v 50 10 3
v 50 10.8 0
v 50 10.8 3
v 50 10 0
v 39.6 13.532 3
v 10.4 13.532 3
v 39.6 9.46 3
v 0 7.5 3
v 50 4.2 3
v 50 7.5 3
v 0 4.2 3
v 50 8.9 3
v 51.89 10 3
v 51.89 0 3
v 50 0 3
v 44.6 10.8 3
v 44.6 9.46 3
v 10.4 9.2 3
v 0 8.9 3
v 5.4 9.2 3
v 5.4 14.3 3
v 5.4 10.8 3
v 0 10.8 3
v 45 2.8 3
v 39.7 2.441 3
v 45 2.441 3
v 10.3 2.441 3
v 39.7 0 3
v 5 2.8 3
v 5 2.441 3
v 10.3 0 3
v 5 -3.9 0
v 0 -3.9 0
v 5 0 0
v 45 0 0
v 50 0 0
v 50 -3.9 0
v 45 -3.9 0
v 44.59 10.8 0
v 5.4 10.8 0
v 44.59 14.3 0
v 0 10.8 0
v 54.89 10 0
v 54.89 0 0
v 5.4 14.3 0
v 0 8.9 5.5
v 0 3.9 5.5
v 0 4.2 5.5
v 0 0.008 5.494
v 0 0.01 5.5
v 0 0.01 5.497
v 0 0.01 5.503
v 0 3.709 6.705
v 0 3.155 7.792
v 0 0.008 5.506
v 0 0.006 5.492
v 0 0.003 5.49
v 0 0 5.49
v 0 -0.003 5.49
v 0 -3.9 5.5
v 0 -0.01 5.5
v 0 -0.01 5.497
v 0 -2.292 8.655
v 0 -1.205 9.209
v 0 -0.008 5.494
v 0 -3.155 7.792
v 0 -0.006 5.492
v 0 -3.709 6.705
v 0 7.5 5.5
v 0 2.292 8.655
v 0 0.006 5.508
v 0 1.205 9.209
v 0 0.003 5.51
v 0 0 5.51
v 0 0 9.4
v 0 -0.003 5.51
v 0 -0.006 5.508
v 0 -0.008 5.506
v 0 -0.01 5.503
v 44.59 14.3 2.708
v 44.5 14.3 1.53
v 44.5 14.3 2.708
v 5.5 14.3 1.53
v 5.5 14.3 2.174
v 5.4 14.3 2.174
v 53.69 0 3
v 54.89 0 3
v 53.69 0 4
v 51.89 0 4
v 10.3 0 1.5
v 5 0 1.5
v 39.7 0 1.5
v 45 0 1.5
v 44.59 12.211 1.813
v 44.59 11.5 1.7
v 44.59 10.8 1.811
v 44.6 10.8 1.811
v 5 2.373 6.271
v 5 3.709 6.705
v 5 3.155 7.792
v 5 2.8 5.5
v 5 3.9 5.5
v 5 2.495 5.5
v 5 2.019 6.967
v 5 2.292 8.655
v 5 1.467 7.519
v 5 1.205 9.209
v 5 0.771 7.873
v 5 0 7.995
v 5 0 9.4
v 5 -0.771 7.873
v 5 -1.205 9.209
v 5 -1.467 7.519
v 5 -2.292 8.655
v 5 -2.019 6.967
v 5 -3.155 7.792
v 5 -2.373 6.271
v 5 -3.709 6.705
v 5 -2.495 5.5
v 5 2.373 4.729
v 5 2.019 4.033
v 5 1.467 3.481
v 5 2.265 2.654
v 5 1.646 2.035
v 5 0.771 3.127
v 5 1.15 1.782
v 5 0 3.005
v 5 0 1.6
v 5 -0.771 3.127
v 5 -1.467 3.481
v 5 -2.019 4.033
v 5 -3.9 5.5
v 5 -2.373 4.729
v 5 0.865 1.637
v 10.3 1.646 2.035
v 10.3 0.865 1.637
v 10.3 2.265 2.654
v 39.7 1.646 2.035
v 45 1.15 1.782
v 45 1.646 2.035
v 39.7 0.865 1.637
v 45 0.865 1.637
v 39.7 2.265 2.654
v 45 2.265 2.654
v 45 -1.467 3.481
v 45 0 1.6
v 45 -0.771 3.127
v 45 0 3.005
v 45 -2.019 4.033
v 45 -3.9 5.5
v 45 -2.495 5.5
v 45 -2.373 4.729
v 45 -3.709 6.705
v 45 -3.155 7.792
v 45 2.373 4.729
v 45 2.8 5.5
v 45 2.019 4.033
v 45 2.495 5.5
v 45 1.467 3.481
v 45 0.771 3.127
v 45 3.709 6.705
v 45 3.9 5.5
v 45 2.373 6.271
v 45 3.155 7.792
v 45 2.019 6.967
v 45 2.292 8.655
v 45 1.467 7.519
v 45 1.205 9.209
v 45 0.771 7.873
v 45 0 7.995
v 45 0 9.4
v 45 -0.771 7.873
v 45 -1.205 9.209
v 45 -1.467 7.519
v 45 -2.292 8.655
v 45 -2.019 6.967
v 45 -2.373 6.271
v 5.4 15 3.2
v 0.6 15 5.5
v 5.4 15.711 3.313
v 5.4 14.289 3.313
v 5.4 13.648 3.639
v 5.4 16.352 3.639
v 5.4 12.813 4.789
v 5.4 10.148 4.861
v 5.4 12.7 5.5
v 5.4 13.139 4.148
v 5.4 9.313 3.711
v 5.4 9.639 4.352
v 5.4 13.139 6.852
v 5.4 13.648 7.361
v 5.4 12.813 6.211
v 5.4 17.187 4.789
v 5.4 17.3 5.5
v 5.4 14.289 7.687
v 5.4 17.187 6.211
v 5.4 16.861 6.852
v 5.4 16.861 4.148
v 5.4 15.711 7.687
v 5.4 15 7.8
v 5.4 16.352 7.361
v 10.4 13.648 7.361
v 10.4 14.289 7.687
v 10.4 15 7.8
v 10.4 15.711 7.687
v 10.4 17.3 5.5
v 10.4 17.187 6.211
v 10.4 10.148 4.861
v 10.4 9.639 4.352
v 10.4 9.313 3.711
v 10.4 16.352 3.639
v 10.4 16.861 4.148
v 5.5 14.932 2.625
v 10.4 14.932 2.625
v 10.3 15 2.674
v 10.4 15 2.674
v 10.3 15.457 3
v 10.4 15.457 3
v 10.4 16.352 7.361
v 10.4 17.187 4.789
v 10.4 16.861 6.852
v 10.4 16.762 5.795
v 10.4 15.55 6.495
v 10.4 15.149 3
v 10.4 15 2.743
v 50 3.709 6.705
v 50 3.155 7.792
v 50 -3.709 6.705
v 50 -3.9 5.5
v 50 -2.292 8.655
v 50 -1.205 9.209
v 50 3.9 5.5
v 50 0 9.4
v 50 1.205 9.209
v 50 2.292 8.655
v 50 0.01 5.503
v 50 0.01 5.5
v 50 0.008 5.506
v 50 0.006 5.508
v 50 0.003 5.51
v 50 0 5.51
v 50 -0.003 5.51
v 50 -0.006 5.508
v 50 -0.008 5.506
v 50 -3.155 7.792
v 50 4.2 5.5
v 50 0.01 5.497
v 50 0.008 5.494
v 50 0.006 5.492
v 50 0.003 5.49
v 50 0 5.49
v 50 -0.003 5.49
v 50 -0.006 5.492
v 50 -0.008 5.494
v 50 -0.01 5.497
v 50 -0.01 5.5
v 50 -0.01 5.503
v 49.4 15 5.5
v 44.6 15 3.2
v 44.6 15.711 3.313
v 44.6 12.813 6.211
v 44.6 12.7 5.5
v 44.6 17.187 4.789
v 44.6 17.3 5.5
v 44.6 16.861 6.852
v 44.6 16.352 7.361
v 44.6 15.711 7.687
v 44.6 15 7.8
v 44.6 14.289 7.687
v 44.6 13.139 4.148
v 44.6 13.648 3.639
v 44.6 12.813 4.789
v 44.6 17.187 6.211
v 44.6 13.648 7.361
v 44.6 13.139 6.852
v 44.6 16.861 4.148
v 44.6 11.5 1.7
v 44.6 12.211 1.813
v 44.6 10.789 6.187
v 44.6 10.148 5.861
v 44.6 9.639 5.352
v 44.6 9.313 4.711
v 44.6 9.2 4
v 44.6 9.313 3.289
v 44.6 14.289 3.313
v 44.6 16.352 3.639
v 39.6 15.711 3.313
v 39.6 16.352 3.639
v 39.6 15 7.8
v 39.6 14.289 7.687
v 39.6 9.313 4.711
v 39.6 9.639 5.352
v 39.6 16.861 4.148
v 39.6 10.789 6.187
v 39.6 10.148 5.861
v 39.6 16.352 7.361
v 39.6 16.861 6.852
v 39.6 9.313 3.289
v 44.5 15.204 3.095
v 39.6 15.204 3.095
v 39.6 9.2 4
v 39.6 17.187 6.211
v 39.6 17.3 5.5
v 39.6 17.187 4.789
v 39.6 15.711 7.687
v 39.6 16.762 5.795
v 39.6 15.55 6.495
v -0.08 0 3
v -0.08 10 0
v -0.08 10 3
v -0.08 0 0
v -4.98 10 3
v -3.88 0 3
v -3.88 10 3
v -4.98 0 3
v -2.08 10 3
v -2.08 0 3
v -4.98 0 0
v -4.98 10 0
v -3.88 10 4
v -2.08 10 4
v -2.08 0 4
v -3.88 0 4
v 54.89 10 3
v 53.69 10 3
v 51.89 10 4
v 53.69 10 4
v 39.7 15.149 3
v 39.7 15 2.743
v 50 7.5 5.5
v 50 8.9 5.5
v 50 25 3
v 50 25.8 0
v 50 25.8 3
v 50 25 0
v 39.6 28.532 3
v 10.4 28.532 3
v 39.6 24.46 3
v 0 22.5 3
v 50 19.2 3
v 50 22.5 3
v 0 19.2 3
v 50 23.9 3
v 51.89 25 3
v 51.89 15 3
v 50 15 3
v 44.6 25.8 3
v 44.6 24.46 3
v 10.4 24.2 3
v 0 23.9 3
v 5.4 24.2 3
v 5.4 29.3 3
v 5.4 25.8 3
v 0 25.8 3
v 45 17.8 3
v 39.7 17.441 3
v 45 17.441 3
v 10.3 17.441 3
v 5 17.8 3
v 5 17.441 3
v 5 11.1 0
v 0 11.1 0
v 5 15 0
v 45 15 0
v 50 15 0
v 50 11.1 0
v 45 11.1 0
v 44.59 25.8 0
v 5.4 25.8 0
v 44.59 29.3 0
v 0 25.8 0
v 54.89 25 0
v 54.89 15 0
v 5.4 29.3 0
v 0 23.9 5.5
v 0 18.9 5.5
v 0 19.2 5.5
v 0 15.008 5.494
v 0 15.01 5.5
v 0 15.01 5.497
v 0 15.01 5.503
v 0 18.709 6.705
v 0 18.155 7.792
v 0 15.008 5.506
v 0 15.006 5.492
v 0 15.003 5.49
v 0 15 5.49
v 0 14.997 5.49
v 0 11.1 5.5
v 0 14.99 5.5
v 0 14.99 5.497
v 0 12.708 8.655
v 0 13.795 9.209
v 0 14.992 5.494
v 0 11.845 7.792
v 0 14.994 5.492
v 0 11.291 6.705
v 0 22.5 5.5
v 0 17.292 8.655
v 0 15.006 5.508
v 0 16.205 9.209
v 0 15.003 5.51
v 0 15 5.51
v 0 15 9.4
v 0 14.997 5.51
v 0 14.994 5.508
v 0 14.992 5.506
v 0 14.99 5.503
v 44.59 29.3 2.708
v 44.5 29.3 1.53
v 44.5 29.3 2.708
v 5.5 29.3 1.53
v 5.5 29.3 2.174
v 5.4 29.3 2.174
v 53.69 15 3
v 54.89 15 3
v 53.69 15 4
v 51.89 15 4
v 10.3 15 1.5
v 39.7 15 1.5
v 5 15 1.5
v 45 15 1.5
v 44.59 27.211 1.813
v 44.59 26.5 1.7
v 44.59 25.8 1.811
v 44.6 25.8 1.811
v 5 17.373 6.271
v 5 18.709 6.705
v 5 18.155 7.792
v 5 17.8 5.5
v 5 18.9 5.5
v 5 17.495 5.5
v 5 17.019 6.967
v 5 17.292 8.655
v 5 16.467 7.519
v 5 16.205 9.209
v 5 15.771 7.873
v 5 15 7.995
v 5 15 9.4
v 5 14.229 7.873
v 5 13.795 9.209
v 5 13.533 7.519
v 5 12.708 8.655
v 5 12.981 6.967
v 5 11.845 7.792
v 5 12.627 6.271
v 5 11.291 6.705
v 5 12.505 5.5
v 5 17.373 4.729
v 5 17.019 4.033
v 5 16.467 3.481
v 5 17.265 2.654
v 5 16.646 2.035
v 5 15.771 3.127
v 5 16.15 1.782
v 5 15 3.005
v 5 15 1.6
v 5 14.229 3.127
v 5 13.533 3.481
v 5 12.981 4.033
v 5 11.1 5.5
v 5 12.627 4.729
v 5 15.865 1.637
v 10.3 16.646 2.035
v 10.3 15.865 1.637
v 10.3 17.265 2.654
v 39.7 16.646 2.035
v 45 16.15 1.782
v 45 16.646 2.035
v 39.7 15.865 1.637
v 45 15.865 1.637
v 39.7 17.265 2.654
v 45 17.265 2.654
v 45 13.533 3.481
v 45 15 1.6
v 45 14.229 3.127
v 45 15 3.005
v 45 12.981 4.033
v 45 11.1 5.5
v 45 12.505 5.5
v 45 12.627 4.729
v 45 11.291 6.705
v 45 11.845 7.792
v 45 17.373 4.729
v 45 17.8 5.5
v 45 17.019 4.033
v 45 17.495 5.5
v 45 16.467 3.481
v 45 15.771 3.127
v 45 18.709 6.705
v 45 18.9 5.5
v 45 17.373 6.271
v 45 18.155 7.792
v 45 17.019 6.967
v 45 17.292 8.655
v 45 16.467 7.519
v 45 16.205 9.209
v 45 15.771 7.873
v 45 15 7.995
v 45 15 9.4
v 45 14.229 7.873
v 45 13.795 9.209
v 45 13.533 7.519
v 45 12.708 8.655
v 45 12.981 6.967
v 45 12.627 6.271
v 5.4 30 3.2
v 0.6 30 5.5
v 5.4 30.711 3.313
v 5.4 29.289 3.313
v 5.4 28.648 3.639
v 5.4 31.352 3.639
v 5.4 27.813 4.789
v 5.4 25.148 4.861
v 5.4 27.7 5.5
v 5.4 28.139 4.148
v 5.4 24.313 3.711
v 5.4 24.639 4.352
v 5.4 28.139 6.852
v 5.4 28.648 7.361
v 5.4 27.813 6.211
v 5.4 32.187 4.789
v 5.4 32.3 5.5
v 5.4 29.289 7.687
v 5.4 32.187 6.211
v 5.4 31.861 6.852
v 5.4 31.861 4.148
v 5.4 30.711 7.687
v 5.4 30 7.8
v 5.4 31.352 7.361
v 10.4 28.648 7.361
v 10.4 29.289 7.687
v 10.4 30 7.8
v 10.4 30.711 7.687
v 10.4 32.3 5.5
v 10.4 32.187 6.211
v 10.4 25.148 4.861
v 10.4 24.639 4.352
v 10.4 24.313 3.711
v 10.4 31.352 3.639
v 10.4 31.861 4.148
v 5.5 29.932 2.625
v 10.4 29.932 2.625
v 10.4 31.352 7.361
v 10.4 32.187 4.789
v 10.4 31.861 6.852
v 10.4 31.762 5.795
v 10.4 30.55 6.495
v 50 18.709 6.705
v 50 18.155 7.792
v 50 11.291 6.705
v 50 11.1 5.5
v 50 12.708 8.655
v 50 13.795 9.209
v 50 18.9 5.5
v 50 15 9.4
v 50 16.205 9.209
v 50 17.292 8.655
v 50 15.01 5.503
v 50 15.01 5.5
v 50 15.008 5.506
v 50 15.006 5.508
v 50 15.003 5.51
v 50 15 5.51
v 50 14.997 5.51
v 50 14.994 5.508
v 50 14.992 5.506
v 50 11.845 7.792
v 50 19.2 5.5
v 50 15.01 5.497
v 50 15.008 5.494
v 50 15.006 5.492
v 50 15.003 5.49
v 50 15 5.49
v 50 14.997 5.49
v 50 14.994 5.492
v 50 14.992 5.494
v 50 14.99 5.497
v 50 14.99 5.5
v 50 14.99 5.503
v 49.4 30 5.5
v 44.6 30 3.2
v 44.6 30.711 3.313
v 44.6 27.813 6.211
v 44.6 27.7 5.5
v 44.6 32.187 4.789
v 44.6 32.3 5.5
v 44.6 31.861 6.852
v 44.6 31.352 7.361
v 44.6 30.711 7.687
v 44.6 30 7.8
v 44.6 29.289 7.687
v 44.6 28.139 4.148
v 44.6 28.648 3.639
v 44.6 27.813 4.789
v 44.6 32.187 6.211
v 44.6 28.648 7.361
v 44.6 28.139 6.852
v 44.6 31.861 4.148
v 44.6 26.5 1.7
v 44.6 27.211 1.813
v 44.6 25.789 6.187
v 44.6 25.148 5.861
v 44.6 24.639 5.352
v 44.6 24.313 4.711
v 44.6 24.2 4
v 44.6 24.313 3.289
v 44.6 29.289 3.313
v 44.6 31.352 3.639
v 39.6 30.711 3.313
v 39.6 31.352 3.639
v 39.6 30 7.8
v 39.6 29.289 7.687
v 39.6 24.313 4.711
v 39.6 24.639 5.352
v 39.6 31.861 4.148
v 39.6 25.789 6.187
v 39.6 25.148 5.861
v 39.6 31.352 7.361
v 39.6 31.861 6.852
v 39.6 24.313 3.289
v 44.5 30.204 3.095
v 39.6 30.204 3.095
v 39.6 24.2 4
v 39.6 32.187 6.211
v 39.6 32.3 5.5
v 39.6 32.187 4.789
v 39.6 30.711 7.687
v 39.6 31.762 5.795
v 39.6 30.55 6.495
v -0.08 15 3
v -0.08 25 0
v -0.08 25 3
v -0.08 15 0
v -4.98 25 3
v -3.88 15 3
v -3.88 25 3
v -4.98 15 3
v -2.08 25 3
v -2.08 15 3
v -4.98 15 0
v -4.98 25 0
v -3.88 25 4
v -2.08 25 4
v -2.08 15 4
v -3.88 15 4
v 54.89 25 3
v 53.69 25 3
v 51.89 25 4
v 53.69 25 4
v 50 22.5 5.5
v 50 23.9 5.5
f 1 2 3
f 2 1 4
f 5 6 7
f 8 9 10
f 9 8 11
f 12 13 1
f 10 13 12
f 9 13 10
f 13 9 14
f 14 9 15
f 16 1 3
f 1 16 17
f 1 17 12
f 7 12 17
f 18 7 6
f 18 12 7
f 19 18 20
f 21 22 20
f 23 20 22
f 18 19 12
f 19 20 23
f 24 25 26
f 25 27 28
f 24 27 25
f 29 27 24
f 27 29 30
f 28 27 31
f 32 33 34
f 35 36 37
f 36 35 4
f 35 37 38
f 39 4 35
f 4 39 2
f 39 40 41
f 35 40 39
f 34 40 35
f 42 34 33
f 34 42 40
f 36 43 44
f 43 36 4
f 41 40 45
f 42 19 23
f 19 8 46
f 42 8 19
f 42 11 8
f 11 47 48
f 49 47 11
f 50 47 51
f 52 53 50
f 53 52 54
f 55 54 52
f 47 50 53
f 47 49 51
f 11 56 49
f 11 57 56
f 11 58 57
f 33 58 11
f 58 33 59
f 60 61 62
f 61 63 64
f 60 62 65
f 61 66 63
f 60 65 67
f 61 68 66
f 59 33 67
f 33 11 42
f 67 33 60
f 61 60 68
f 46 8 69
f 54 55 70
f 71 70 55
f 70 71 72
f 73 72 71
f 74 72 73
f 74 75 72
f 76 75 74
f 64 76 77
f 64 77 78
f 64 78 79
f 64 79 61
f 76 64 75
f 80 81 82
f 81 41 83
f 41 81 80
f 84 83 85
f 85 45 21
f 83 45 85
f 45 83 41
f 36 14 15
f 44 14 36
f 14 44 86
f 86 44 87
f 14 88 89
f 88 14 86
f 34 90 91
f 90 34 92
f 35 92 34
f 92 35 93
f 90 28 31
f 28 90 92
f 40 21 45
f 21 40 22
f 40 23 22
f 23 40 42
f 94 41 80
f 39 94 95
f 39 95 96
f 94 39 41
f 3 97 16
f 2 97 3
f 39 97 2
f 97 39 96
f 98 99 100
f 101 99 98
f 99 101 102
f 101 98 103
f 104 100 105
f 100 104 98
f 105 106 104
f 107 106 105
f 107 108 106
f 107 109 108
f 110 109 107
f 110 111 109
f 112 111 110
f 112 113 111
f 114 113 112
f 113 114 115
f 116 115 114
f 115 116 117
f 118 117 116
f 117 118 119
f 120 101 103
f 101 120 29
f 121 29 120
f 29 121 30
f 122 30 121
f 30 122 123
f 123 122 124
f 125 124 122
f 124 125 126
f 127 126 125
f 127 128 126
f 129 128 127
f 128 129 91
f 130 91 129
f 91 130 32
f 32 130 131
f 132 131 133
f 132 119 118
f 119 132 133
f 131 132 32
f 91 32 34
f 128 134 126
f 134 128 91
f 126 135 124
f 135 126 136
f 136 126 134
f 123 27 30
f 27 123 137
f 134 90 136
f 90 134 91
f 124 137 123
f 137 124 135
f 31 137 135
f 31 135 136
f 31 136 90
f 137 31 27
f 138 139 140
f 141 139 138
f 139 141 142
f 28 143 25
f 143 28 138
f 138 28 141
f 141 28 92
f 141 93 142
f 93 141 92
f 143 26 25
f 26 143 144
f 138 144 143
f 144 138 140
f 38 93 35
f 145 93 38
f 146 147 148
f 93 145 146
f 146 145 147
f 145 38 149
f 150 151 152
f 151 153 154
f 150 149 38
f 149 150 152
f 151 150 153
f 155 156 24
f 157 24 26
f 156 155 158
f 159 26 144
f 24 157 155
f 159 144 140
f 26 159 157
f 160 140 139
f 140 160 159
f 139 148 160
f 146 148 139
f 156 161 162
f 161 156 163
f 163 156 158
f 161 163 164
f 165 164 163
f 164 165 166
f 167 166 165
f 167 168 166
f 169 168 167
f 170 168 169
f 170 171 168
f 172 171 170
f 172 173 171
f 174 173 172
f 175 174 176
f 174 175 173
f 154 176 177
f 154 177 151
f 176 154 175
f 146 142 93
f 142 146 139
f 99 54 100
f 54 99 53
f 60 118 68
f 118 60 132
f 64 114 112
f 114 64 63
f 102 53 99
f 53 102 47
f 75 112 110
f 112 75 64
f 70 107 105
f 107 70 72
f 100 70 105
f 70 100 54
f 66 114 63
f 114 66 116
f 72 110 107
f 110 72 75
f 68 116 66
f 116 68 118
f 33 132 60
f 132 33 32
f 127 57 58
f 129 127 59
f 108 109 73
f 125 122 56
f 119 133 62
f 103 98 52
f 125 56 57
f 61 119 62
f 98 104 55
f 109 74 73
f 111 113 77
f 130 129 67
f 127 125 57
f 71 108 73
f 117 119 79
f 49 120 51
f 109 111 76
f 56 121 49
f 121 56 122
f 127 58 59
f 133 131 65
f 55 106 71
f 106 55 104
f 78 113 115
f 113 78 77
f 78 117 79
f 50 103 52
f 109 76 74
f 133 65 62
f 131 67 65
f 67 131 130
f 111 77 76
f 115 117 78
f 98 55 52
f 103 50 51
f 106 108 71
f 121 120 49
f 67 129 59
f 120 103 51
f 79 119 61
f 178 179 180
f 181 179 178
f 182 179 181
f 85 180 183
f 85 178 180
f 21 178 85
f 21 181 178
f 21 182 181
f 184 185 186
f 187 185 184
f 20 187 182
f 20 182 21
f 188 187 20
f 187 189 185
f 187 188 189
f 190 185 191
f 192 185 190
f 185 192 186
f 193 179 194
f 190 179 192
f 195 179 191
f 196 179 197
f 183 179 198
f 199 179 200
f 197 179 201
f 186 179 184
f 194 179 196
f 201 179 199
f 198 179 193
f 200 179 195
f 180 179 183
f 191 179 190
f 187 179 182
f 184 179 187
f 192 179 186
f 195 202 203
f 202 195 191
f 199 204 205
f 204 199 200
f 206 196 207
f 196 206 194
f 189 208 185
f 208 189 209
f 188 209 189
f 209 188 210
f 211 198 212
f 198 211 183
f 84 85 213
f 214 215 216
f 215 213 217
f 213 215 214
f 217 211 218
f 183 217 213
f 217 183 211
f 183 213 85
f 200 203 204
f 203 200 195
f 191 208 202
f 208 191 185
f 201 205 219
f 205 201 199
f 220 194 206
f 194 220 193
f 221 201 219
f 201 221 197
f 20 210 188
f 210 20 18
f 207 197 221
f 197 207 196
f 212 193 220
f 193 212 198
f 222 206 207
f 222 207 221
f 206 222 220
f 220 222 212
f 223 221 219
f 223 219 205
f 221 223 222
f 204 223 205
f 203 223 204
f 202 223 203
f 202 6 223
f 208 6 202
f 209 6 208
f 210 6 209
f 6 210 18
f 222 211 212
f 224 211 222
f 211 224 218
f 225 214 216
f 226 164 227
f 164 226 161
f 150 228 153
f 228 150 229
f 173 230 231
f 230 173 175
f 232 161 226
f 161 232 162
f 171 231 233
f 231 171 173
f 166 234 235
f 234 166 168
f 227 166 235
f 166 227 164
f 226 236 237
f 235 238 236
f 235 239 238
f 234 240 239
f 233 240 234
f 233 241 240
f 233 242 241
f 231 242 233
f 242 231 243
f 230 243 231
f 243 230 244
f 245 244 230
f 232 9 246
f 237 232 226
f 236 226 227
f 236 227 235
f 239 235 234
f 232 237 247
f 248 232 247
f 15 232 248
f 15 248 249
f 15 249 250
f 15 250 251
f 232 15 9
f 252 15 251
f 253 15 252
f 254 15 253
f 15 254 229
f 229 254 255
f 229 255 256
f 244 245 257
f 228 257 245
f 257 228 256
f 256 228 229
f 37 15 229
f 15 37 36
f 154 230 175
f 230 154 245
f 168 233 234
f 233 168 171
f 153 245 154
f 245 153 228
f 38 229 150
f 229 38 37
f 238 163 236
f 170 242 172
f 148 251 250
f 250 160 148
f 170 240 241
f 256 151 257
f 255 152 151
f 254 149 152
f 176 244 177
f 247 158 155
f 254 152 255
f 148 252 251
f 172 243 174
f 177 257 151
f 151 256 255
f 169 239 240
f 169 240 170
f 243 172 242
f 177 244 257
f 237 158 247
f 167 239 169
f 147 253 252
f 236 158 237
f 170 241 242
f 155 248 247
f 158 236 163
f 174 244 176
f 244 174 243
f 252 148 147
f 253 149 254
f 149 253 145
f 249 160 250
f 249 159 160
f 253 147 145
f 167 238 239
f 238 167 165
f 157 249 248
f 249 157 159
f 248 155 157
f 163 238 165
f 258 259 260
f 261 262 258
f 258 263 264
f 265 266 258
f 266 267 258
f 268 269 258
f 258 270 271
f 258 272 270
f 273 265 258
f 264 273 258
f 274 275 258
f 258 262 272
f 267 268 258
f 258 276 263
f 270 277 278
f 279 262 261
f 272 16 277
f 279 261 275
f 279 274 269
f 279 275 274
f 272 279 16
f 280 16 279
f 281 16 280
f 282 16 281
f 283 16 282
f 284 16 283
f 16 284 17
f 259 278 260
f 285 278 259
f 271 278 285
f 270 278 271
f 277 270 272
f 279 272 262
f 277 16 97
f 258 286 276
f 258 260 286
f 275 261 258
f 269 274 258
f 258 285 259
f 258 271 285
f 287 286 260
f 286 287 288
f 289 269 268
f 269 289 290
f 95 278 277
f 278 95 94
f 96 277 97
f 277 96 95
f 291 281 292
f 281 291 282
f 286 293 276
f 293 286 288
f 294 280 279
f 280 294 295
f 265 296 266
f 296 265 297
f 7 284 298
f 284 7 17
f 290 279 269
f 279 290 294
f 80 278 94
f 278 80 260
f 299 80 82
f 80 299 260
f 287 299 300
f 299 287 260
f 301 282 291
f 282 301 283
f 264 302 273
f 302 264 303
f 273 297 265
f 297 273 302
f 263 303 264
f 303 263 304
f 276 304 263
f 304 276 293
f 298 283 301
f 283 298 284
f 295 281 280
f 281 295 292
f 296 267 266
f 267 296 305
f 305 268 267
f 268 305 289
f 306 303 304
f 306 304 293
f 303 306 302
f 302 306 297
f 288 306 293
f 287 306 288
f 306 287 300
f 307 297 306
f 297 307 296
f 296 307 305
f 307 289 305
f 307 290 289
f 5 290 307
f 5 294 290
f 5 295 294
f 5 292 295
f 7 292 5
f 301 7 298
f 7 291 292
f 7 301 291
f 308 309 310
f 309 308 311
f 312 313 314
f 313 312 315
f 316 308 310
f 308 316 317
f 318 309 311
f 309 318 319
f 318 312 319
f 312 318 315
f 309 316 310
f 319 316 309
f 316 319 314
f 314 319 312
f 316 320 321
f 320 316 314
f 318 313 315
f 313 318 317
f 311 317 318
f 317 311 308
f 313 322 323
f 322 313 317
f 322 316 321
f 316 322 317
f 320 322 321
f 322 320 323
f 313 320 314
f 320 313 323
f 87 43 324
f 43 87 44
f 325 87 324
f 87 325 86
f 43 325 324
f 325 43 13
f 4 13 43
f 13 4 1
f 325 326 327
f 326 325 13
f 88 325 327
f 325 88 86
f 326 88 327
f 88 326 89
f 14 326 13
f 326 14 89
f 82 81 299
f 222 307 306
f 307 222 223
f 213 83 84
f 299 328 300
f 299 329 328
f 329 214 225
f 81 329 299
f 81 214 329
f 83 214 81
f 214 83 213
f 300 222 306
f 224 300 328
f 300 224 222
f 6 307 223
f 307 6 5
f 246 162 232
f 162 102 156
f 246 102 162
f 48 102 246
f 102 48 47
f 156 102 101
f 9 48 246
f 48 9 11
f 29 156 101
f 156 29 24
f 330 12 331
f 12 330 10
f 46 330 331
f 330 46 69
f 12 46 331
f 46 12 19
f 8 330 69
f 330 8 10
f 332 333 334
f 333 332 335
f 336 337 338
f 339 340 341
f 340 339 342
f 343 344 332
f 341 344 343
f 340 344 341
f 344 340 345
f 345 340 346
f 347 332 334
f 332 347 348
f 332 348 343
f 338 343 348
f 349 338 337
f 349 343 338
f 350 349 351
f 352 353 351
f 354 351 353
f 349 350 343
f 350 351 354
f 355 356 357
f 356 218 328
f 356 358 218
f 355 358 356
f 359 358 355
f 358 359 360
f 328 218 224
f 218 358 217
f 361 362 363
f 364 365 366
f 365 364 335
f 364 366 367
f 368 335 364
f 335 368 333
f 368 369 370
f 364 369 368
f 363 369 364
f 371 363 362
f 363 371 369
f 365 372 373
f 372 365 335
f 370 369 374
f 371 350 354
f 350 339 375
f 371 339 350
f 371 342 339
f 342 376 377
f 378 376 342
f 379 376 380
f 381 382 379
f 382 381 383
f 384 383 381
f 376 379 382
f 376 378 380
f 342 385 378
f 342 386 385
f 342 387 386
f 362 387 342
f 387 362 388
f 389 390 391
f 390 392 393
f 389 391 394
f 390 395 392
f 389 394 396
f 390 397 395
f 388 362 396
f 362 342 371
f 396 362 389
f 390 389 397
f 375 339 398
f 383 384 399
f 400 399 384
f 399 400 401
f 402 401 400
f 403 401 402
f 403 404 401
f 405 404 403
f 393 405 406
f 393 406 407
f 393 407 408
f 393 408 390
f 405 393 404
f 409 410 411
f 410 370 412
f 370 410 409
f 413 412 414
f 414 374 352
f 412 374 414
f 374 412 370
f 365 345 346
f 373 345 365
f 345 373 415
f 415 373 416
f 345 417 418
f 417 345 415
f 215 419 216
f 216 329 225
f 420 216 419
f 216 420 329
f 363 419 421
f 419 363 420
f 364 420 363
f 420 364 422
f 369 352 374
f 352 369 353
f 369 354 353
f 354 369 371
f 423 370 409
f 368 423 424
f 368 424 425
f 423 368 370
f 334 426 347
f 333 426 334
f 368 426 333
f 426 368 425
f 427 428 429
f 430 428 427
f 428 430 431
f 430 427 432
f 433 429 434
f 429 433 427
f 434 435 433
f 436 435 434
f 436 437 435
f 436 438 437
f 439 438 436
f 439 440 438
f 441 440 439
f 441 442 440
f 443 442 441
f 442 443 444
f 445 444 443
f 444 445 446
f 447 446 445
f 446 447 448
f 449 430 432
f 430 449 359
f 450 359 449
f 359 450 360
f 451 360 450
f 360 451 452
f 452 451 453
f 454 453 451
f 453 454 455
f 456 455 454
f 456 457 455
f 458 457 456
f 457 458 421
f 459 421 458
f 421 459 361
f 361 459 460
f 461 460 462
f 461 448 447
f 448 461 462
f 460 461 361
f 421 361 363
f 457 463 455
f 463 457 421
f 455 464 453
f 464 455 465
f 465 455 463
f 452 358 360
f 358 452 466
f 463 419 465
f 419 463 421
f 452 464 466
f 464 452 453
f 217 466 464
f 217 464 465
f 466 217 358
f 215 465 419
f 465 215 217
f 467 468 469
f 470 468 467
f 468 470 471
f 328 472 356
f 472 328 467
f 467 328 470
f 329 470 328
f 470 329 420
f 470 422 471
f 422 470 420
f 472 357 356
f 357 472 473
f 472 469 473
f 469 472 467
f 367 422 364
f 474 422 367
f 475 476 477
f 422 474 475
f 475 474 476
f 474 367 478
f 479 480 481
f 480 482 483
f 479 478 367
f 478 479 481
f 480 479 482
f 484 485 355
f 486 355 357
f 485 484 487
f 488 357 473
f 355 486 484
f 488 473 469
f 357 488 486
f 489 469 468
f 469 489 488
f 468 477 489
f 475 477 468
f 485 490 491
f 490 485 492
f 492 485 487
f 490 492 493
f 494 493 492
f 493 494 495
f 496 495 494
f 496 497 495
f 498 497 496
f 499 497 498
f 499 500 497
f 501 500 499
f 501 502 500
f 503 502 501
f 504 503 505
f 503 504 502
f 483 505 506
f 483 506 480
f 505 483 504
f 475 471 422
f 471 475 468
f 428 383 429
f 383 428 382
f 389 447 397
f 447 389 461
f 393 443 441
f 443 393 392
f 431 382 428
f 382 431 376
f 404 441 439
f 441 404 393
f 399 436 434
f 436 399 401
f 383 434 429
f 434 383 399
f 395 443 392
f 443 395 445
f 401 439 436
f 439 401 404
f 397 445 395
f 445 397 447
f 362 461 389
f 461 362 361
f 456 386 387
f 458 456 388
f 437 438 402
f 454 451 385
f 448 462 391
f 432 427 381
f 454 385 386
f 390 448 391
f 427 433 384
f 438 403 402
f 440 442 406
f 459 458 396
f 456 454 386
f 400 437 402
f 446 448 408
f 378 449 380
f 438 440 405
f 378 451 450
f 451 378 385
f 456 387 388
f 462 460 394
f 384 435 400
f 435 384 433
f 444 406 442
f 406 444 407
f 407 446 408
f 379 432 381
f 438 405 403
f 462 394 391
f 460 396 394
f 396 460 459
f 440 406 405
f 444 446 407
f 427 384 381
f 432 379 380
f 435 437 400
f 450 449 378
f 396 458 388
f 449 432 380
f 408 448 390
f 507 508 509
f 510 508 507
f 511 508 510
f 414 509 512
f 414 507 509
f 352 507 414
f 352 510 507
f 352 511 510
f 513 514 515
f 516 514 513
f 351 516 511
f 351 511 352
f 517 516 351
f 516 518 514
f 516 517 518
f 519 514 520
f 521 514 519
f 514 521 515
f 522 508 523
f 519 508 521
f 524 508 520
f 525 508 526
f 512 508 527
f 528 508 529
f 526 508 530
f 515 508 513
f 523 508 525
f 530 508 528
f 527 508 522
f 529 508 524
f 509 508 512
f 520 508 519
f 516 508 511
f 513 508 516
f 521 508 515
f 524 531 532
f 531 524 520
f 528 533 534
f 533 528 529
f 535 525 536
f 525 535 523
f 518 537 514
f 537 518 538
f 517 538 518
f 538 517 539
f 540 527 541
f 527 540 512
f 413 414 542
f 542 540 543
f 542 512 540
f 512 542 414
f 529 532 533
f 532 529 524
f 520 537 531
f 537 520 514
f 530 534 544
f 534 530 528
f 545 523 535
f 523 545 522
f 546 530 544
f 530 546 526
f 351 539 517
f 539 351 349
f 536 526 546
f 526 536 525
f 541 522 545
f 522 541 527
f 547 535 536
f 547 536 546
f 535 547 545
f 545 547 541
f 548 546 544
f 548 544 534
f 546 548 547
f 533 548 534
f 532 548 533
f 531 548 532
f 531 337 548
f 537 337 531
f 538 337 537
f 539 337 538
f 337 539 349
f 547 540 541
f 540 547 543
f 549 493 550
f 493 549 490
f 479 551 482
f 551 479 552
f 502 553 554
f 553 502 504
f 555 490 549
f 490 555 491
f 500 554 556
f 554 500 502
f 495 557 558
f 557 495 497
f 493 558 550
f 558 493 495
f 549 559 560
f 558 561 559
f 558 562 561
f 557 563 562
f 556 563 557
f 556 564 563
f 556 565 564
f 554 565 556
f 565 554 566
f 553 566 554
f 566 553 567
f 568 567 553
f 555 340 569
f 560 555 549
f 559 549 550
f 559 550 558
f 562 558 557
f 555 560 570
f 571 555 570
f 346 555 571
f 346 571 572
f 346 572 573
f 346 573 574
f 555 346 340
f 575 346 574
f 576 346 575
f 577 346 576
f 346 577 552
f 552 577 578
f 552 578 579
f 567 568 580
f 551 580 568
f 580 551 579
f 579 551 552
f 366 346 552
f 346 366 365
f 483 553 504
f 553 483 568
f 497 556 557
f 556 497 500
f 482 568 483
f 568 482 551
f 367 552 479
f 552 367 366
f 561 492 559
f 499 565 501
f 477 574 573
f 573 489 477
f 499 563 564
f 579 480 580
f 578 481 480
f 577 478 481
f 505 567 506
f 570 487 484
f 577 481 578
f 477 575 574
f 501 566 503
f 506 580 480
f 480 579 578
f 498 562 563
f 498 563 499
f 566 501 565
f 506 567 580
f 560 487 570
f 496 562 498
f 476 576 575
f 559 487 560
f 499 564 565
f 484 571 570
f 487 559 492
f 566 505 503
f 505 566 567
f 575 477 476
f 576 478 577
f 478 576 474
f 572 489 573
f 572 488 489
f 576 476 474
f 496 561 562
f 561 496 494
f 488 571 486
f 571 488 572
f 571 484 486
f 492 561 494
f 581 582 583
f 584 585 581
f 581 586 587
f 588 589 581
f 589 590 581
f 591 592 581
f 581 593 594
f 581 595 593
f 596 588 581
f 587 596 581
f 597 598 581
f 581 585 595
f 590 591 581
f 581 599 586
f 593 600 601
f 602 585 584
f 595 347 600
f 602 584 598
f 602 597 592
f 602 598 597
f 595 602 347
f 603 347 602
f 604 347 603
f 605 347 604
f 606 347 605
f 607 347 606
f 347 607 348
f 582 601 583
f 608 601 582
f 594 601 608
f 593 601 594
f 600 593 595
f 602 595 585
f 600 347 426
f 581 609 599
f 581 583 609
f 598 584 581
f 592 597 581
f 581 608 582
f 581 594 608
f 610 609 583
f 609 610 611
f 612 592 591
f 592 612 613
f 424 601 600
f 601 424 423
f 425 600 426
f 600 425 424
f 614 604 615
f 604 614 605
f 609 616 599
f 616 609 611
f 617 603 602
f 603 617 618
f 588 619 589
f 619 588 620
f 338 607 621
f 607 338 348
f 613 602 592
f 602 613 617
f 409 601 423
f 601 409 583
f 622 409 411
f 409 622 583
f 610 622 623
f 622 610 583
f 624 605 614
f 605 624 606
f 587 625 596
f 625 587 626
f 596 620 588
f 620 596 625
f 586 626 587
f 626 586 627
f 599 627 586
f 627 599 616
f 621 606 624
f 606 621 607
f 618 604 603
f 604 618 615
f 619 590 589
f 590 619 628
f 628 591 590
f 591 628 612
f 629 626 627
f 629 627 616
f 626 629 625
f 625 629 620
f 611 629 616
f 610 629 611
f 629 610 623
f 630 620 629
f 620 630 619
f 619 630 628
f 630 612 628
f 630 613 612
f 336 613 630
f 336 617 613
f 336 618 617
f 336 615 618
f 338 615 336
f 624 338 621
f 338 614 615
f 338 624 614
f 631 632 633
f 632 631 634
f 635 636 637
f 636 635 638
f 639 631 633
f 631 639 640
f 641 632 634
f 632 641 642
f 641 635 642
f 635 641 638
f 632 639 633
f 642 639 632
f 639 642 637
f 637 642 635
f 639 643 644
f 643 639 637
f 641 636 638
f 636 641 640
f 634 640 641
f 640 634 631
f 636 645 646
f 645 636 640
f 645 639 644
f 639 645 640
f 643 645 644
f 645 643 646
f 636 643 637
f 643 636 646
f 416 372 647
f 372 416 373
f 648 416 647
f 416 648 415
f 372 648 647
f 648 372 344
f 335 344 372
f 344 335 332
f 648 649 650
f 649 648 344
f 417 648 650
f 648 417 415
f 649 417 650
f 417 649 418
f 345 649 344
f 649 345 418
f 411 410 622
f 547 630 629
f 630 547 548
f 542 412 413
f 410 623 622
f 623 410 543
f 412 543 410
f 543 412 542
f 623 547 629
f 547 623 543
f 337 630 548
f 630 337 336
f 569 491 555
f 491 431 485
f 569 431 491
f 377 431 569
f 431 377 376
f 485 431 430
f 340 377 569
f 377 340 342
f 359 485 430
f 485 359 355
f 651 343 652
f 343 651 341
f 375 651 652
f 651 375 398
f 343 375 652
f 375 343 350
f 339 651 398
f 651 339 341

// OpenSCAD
width = 50; //149.8;
tab_depth = 5;
tab_width = 10;
// 5mm to the edge of the tract, the guide bar is 3mm (+/- 1mm on either side)
tab_dim = 3;
height = 100;
thick = 3;
slat_height = 15;
hinge_thick = 5;
hinge_shell_thick = 1.4;
hinge_clearance = 0.2;

type = "door2";

if(type=="door"){
  for(i=[0:height/slat_height-1])
      translate([0, slat_height*(i-1), 0]) liston(width, slat_height);  
}
if(type=="door1"){
  liston(width, slat_height);
}
if(type=="door2"){
  liston(width, slat_height);
  translate([0, slat_height, 0]) liston(width, slat_height);
}


// LISTON: Draws a piece of roller door
module liston(longitud, height=10){
  ht = hinge_thick / 2;
  z = thick + ht;
  
  difference(){
    // Slat body
    cube([longitud, height-0.7, thick]);
    
    // cut-out to accomodate outter hinge
    translate([-0.01, height-hinge_thick+hinge_shell_thick-0.6, -0.01])
      cube([hinge_thick+0.41, hinge_thick/2+hinge_shell_thick+0.6, thick+1]);
    translate([longitud-hinge_thick-0.41, height-hinge_thick+hinge_shell_thick-0.6, -0.01])
      cube([hinge_thick+.51, hinge_thick/2+hinge_shell_thick+0.6, thick+1]);
    
    // cut-out to accomodate inner hinge
    translate([hinge_thick, 0, ht+thick-1.2])
      rotate([0, 90, 0]) 
        cylinder(r=hinge_thick/2+0.3, h=hinge_thick+0.3, $fn=20);
    translate([longitud-hinge_thick*2-0.3, 0, ht+thick-1.2])
      rotate([0, 90, 0])
        cylinder(r=hinge_thick/2+0.3, h=hinge_thick+0.3, $fn=20);
  }
  
  difference(){
    union(){
      // horizontal ribs
      //translate([5, height-1.7, 0]) cube([longitud-10, 1, z]);
      translate([hinge_thick+0.5, height-3.2, 0]) 
        rotate([-30, 0, 0])
          cube([longitud-hinge_thick*2-1, hinge_shell_thick, z+2]);
      translate([0, hinge_shell_thick*2, 0]) 
        cube([longitud, hinge_shell_thick, z]);
      translate([0, slat_height/2, 0]) cube([longitud, hinge_shell_thick, z]);
      
      // Slot Guides
      translate([-tab_depth+0.02, 0, 0]){
        cube([tab_depth-0.1, tab_width, thick]);
        translate([1.1, 0, thick])
          cube([1.8, tab_width, 1]); 
      }
      translate([longitud-0.01, 0, 0]){
        cube([tab_depth-0.1, tab_width, thick]);
        translate([1.9, 0, thick])
          cube([1.8, tab_width, 1]); 
      }
      
      // left side
      translate([0, 0, z]){
        rotate([0, 90, 0]){
          difference(){
            union(){
              cylinder(r1=ht+hinge_shell_thick, r2=ht+hinge_shell_thick, h=hinge_thick, $fn=20);
              translate([0, -ht-hinge_shell_thick, 0]) 
                cube([thick + ht, ht+hinge_shell_thick, hinge_thick]);
            }
            cylinder(r1=0.01, r2=ht, h=hinge_thick+0.01, $fn=20);
          }
          translate([0, height, 0.4]){
            translate([0, 0, hinge_clearance])
              cylinder(r1=0, r2=ht-hinge_clearance, h=hinge_thick-hinge_clearance, $fn=20);
            translate([0, 0, hinge_thick]){
              hull(){
                cylinder(r1=ht-hinge_clearance, r2=ht-hinge_clearance, h=hinge_thick, $fn=20);
                translate([ht, -3.5, 0])
                  cylinder(r1=ht-hinge_clearance, r2=ht-hinge_clearance, h=hinge_thick, $fn=20);
              }
            }
          }
        }
      }
      
      // right side
      translate([longitud-hinge_thick, 0, z]){
        rotate([0, 90, 0]){
          difference(){
            union(){
              cylinder(r1=ht+hinge_shell_thick, r2=ht+hinge_shell_thick, h=hinge_thick, $fn=20);
              translate([0, -ht-hinge_shell_thick, 0]) 
                cube([thick + ht, ht+hinge_shell_thick, hinge_thick]);
            }
            translate([0, 0, -0.01]) 
              cylinder(r1=ht, r2=0.01, h=hinge_thick+0.01, $fn=20);
          }
          translate([0, height, -0.4]){
            cylinder(r1=ht-hinge_clearance, r2=0, h=hinge_thick-0.2, $fn=20);
            translate([0, 0, -hinge_thick]){
              hull(){
                cylinder(r1=ht-hinge_clearance, r2=ht-hinge_clearance, h=hinge_thick, $fn=20);
                translate([1.5, -3.5, 0])
                  cylinder(r1=ht-hinge_clearance, r2=ht-hinge_clearance, h=hinge_thick, $fn=20);
              }
            }
          }
        }
      }
    }
    // Clean up the bottom
    translate([0, 0, -10]) cube([longitud, height, 10]);
  }    
}
